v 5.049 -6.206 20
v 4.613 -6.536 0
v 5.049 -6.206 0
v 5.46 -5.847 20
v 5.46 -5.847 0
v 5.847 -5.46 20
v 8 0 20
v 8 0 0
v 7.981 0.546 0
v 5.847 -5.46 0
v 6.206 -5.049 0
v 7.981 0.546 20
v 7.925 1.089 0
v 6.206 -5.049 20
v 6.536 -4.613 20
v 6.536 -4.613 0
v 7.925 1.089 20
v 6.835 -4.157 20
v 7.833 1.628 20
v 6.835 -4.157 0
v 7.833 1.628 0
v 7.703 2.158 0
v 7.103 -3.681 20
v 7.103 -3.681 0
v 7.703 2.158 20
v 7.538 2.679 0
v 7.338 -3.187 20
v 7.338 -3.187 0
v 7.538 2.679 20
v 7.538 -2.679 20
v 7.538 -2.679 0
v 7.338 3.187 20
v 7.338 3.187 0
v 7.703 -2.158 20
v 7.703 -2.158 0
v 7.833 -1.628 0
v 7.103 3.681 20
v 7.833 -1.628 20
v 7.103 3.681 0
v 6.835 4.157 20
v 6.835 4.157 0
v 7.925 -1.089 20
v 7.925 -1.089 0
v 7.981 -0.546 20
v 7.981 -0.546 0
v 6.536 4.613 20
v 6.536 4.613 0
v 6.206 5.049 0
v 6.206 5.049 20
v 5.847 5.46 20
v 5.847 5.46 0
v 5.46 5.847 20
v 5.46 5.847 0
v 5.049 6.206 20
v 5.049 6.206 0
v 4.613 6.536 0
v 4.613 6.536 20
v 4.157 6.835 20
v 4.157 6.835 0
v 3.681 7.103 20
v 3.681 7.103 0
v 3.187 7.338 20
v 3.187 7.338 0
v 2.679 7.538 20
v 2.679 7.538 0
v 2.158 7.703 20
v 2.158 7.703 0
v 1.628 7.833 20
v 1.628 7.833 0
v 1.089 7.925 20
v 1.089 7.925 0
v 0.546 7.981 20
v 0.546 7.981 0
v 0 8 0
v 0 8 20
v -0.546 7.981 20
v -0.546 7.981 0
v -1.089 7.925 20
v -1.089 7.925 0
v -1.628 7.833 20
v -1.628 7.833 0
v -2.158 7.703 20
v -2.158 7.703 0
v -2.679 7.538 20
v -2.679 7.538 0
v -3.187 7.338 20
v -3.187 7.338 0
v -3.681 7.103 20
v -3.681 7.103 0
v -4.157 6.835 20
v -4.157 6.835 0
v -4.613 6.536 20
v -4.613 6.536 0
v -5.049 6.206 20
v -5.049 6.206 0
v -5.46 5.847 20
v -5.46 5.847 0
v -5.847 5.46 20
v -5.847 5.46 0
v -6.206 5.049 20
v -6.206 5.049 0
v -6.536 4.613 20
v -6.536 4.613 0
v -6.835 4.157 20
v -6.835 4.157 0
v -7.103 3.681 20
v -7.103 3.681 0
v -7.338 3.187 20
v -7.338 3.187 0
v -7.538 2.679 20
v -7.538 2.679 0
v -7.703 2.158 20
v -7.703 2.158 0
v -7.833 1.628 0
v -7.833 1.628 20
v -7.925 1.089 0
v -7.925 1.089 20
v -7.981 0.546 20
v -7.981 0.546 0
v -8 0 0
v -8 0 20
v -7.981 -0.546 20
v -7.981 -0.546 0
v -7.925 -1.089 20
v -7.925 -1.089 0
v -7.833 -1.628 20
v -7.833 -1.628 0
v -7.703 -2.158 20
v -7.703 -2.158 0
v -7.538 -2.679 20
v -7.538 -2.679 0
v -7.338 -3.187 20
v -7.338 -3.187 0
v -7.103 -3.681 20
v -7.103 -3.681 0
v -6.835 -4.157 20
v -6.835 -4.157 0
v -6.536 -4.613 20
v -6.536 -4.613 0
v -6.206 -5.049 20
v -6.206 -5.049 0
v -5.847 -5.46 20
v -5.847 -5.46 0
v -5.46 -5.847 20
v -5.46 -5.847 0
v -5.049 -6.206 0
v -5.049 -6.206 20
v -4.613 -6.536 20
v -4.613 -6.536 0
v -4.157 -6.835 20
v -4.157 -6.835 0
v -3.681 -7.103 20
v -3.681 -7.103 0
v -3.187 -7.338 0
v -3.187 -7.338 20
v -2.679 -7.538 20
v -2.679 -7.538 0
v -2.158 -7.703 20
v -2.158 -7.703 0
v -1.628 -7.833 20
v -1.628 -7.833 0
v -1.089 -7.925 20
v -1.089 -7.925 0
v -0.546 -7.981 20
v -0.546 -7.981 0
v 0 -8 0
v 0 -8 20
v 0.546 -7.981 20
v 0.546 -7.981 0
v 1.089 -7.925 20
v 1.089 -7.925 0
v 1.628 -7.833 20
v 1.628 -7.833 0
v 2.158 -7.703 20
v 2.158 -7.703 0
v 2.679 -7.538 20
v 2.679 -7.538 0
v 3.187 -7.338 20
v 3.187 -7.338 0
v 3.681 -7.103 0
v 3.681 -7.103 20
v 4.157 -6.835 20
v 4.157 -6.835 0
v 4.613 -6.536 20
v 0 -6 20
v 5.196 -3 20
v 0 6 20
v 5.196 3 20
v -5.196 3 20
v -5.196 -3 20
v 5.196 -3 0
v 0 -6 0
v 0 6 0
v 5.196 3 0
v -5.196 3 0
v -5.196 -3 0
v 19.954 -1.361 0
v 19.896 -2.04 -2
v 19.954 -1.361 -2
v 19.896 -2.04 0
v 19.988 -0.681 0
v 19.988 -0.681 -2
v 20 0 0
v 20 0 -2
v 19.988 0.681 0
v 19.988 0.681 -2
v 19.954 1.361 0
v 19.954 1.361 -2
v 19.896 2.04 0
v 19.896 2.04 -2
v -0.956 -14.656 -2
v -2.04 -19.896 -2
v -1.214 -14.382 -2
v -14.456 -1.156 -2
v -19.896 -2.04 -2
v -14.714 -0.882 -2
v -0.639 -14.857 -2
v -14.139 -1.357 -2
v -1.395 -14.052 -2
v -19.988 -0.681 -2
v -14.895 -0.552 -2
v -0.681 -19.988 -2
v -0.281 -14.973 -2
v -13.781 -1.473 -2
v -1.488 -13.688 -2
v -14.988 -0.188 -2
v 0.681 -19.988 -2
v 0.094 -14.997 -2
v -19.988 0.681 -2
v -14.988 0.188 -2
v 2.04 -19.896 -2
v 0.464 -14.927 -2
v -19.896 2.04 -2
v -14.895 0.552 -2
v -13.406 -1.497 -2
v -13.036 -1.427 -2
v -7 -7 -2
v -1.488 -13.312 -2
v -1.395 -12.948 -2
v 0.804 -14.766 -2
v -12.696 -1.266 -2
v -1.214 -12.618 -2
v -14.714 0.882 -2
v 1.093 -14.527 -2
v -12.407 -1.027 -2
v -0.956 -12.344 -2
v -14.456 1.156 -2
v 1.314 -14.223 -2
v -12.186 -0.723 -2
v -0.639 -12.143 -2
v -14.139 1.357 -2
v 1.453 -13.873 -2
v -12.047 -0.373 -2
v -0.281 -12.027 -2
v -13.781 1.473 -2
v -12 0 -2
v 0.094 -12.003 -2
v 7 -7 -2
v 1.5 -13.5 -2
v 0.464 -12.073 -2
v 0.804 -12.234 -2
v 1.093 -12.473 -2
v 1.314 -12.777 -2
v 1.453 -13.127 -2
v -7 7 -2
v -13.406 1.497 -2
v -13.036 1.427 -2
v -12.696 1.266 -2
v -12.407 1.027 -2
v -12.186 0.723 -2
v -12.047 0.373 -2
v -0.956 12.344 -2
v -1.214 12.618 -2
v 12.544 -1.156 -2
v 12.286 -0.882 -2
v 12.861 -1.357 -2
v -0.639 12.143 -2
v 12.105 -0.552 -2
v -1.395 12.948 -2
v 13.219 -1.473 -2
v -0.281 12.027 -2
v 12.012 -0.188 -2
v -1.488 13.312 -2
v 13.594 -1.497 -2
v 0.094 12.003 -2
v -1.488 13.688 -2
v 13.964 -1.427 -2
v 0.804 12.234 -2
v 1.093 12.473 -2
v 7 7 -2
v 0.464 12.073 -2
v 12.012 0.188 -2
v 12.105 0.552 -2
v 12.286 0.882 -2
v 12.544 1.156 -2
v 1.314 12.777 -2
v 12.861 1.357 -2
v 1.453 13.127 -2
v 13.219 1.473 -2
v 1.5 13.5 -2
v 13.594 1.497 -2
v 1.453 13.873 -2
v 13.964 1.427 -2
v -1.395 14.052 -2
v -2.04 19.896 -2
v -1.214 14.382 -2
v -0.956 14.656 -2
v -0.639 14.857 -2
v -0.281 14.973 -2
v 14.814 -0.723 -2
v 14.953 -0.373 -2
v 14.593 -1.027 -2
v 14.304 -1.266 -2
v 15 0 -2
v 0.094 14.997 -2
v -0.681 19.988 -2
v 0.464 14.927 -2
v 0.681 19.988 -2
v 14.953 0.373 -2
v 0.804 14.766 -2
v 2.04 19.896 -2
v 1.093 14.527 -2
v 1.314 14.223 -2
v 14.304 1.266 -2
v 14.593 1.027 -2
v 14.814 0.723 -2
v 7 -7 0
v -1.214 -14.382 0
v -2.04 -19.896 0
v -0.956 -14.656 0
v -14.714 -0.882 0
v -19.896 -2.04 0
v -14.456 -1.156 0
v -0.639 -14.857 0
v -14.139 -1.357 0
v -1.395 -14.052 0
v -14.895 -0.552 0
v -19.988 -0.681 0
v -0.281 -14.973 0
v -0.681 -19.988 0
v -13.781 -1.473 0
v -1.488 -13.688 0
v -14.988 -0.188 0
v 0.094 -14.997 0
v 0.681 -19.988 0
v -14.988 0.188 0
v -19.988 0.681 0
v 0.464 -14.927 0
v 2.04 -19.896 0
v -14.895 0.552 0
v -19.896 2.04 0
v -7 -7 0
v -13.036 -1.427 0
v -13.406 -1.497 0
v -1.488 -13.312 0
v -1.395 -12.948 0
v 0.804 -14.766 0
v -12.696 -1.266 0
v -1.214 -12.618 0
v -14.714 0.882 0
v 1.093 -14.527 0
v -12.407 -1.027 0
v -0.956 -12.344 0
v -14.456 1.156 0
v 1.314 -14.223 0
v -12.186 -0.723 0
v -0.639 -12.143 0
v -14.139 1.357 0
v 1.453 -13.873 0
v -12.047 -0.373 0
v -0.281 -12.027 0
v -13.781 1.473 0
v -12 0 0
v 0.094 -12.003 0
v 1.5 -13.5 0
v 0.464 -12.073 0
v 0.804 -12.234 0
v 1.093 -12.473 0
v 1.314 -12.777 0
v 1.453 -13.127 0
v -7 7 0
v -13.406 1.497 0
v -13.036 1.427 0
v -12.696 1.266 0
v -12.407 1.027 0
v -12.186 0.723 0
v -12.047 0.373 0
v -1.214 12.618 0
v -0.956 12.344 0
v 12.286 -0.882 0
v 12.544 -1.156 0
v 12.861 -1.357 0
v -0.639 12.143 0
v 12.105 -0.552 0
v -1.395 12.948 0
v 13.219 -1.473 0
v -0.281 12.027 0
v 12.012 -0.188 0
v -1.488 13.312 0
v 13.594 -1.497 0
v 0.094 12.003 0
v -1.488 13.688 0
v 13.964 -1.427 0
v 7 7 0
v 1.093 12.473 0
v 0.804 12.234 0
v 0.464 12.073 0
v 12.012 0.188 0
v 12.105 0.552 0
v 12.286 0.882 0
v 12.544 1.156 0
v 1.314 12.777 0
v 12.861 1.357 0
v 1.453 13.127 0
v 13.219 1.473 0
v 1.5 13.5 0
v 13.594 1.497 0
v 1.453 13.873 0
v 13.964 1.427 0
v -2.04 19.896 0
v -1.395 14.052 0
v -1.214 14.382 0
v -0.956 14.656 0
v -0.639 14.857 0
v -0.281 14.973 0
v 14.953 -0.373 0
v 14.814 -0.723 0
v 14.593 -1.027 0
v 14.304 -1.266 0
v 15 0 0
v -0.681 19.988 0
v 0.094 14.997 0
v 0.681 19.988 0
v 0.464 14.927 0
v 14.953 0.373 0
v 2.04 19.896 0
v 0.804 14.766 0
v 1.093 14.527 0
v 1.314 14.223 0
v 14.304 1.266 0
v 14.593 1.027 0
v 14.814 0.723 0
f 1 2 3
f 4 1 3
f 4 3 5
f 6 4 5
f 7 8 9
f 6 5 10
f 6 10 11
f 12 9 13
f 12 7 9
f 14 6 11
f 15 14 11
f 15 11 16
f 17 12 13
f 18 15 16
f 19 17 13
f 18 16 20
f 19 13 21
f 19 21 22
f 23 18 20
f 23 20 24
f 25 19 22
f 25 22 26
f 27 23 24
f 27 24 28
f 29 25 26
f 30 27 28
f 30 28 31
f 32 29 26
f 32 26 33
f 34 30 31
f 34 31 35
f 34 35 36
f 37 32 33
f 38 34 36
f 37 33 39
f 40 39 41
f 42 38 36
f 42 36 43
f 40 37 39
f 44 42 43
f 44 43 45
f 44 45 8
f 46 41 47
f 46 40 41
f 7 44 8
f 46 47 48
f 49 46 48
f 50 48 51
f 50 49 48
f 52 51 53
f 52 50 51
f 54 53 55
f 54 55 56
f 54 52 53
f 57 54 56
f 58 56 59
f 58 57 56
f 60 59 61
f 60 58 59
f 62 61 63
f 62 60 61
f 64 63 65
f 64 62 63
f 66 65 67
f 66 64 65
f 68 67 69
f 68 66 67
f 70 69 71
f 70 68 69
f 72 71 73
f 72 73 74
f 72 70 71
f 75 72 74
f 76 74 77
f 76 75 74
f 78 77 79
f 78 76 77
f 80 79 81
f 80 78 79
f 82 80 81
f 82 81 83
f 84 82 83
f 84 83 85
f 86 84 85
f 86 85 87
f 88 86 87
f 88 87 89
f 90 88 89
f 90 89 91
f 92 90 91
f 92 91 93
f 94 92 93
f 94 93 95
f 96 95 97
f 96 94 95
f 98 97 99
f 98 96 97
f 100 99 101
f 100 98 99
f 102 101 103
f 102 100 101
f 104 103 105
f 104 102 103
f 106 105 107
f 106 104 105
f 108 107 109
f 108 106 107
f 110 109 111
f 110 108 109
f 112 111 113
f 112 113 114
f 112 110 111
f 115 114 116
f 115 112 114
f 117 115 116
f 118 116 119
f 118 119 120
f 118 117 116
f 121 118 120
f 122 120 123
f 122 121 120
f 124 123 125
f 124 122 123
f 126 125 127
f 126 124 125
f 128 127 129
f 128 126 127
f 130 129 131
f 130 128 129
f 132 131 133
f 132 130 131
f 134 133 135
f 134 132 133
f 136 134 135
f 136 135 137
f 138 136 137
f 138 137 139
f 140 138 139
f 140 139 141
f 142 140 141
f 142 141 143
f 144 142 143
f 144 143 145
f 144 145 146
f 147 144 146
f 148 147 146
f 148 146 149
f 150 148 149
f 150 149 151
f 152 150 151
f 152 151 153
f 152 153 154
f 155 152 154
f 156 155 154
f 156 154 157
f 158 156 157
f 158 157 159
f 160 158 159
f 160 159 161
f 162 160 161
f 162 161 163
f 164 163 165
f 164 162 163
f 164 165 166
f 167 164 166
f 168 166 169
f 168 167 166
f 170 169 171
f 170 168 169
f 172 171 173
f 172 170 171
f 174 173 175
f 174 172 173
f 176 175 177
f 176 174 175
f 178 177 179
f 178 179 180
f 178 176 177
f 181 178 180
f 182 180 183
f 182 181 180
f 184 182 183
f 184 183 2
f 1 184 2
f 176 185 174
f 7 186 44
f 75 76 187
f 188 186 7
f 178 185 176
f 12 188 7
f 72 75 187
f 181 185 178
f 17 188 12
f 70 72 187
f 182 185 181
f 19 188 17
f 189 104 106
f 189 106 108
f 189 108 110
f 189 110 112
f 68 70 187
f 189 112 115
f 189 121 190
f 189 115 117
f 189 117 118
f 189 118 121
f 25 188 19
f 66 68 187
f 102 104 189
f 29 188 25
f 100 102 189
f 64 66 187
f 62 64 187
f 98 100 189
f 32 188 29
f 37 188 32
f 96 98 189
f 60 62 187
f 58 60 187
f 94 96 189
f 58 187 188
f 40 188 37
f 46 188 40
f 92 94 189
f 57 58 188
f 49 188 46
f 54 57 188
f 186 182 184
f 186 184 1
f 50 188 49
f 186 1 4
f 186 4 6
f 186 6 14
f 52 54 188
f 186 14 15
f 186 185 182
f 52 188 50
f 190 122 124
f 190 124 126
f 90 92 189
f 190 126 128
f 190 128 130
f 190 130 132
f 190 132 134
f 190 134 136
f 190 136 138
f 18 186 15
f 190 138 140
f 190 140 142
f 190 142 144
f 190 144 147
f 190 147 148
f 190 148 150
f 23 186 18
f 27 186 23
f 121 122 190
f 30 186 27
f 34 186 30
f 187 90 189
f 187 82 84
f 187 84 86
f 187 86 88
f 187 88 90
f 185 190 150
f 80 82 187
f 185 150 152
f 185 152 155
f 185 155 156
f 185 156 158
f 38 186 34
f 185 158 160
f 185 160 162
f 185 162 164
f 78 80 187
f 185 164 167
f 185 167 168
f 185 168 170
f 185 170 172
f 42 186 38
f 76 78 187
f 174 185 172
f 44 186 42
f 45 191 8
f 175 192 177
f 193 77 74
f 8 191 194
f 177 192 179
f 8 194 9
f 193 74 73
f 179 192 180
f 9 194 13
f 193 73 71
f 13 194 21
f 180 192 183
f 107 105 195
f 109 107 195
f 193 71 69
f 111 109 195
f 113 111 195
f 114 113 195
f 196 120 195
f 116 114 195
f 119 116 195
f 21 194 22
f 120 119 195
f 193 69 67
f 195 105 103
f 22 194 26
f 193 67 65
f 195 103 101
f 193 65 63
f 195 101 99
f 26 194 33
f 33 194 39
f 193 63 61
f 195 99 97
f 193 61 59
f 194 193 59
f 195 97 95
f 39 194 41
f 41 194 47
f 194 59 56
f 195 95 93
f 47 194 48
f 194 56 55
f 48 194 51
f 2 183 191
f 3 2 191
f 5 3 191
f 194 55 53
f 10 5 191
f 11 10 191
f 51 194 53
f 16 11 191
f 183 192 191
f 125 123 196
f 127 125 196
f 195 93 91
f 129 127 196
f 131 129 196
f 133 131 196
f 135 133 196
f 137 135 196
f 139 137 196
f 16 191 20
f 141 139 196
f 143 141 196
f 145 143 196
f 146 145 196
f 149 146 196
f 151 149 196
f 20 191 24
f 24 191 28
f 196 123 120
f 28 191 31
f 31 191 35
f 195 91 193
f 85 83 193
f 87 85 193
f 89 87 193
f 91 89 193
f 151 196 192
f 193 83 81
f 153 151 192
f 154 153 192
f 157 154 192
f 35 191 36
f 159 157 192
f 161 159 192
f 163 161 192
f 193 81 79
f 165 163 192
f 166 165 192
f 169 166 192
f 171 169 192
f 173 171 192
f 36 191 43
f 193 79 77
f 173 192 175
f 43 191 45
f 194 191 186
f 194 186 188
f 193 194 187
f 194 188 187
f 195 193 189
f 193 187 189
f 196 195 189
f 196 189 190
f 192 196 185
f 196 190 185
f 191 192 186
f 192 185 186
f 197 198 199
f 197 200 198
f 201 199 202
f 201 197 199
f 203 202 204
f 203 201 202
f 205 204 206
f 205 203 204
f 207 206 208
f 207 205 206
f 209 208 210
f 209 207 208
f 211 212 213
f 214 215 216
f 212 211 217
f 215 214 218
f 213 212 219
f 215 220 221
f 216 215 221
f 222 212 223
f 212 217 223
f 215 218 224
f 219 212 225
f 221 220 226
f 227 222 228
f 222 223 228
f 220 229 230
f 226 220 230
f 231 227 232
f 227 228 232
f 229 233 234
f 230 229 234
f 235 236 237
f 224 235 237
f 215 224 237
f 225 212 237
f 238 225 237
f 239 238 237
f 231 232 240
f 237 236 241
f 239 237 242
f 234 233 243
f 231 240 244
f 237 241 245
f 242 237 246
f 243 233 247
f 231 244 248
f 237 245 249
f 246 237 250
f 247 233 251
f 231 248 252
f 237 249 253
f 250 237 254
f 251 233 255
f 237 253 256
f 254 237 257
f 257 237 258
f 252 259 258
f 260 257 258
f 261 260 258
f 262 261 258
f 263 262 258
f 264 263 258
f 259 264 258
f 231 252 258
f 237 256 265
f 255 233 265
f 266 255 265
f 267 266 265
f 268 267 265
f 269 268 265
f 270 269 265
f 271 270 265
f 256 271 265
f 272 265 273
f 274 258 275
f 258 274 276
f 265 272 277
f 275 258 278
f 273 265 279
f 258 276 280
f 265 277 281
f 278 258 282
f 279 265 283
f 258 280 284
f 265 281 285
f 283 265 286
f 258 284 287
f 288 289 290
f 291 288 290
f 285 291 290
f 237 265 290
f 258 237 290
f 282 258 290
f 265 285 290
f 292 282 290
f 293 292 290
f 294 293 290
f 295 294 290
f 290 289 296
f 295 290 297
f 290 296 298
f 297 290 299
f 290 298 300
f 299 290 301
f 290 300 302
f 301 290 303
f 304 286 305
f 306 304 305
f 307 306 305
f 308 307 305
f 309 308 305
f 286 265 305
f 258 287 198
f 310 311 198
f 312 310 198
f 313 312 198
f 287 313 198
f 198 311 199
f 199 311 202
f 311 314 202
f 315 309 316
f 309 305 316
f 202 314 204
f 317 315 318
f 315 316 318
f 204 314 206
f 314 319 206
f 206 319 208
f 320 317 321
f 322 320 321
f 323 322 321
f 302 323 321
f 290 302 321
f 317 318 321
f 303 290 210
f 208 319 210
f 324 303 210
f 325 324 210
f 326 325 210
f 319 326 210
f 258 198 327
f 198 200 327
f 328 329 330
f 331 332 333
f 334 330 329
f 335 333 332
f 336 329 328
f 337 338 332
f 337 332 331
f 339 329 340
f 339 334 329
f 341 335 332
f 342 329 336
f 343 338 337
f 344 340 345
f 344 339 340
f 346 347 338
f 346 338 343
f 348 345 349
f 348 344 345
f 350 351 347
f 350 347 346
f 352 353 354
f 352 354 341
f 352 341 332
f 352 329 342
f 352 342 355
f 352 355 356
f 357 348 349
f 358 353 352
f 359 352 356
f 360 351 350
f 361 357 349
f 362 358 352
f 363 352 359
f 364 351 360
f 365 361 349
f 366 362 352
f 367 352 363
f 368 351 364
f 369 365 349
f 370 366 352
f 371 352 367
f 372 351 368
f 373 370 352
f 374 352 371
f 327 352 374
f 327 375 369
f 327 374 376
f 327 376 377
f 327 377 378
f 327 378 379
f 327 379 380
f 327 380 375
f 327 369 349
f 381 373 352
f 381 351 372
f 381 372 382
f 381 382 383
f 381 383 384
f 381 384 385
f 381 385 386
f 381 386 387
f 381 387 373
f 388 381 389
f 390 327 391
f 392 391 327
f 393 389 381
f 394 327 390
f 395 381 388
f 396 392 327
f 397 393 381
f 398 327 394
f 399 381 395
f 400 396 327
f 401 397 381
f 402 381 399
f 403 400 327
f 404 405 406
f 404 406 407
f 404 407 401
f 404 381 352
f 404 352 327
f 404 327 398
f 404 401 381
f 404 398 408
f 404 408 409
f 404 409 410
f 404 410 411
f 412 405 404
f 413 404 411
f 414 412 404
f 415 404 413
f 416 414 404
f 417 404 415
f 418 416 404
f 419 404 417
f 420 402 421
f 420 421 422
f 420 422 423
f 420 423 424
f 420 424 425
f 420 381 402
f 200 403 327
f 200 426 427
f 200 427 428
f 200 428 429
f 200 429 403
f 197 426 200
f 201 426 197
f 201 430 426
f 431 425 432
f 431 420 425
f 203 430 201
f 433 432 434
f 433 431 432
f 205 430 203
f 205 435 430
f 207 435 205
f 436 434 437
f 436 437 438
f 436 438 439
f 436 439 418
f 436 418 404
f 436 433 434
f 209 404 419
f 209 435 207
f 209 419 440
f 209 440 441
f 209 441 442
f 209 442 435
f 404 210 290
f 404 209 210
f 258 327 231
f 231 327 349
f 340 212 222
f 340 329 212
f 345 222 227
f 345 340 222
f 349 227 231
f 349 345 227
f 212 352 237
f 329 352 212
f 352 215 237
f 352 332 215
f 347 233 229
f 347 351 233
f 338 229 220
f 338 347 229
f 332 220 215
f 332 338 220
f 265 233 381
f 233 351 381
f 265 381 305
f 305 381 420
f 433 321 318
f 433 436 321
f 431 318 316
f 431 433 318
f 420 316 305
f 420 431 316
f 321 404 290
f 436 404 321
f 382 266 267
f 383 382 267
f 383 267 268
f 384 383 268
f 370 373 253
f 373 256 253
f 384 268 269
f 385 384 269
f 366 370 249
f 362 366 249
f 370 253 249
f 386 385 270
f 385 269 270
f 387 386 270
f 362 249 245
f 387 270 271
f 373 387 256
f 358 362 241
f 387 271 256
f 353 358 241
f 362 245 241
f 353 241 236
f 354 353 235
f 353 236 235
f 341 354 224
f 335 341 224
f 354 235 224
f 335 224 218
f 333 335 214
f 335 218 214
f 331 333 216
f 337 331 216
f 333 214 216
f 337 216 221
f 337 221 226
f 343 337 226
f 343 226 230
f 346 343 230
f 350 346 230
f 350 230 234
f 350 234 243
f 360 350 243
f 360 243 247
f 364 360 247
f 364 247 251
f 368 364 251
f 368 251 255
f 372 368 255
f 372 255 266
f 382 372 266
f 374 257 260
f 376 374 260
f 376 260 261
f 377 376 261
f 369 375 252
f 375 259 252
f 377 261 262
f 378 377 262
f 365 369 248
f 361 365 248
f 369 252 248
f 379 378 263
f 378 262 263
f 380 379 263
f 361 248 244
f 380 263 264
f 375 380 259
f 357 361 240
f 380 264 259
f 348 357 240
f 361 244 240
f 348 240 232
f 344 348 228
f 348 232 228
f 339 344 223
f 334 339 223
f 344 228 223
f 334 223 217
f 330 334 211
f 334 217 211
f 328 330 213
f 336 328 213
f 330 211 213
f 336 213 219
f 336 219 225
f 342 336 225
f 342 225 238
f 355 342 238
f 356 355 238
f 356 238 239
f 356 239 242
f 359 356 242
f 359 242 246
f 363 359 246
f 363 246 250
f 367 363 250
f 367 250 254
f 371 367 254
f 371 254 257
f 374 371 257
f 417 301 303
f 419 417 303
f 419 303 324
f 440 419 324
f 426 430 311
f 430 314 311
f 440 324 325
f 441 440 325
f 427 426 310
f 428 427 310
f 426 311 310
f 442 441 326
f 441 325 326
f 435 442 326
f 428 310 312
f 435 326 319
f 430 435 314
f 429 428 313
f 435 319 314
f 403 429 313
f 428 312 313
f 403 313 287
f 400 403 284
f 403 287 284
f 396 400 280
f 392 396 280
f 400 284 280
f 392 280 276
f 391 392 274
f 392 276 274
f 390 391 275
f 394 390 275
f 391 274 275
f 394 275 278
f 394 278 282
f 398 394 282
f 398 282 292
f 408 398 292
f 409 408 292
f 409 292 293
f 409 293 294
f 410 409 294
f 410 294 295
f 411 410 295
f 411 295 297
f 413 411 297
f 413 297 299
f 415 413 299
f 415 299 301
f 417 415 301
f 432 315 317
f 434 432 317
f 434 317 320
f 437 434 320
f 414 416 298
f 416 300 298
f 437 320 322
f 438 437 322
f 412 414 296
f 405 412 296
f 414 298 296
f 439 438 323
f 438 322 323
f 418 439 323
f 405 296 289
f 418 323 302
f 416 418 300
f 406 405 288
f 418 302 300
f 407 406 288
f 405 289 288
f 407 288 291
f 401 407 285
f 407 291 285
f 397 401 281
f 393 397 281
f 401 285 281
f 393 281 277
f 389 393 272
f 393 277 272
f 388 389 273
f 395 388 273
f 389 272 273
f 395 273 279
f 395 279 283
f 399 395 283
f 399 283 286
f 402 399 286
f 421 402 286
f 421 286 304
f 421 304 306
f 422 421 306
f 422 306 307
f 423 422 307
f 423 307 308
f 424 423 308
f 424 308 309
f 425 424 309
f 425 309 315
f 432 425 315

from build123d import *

# Parameters (mm, degrees)
EXTRUDE_DEPTH     = 30
CYLINDER_R        = 8
CYLINDER_DEPTH    = 20
EXTRUDE002_DEPTH  = 2
SKETCH001_R       = 1.5
EXTRUDE001_DEPTH  = 2
CYLINDER001_R     = 20
CYLINDER001_DEPTH = 2


with BuildPart() as extrude_body:
    # Sketch → Extrude (new body)
    with BuildSketch(Plane.XY.offset(20)):
        Polygon((0, 6), (-5.196152, 3), (-5.196152, -3), (0, -6), (5.196152, -3), (5.196152, 3), align=None)
    extrude(amount=-EXTRUDE_DEPTH)


with BuildPart() as cut:
    # Cylinder → Cylinder (new body)
    with BuildSketch(Plane.XY):
        Circle(CYLINDER_R)
    extrude(amount=CYLINDER_DEPTH)

    # Cut: cut Extrude body
    add(extrude_body.part, mode=Mode.SUBTRACT)


with BuildPart() as extrude002:
    # Sketch003 → Extrude002 (new body)
    with BuildSketch(Plane.XY):
        Polygon((-7, 7), (-2, 20), (-20, 20), (-20, 2), align=None)
        Polygon((-7, -7), (-2, -20), (-20, -20), (-20, -2), align=None)
        Polygon((7, -7), (2, -20), (20, -20), (20, -2), align=None)
        Polygon((7, 7), (2, 20), (20, 20), (20, 2), align=None)
    extrude(amount=-EXTRUDE002_DEPTH)


with BuildPart() as extrude001:
    # Sketch001 → Extrude001 (new body)
    with BuildSketch(Plane(origin=(0, 0, -2), x_dir=(1, 0, 0), z_dir=(0, 0, -1))):
        with Locations((0, 13.5)):
            Circle(SKETCH001_R)
        with Locations((13.5, 0)):
            Circle(SKETCH001_R)
        with Locations((0, -13.5)):
            Circle(SKETCH001_R)
        with Locations((-13.5, 0)):
            Circle(SKETCH001_R)
    extrude(amount=-EXTRUDE001_DEPTH)


with BuildPart() as cut002:
    # Cylinder001 → Cylinder001 (new body)
    with BuildSketch(Plane.XY.offset(-2)):
        Circle(CYLINDER001_R)
    extrude(amount=CYLINDER001_DEPTH)

    # Cut001: cut Extrude001
    add(extrude001.part, mode=Mode.SUBTRACT)

    # Cut002: cut Extrude002
    add(extrude002.part, mode=Mode.SUBTRACT)


solid = Compound([cut.part, cut002.part])
